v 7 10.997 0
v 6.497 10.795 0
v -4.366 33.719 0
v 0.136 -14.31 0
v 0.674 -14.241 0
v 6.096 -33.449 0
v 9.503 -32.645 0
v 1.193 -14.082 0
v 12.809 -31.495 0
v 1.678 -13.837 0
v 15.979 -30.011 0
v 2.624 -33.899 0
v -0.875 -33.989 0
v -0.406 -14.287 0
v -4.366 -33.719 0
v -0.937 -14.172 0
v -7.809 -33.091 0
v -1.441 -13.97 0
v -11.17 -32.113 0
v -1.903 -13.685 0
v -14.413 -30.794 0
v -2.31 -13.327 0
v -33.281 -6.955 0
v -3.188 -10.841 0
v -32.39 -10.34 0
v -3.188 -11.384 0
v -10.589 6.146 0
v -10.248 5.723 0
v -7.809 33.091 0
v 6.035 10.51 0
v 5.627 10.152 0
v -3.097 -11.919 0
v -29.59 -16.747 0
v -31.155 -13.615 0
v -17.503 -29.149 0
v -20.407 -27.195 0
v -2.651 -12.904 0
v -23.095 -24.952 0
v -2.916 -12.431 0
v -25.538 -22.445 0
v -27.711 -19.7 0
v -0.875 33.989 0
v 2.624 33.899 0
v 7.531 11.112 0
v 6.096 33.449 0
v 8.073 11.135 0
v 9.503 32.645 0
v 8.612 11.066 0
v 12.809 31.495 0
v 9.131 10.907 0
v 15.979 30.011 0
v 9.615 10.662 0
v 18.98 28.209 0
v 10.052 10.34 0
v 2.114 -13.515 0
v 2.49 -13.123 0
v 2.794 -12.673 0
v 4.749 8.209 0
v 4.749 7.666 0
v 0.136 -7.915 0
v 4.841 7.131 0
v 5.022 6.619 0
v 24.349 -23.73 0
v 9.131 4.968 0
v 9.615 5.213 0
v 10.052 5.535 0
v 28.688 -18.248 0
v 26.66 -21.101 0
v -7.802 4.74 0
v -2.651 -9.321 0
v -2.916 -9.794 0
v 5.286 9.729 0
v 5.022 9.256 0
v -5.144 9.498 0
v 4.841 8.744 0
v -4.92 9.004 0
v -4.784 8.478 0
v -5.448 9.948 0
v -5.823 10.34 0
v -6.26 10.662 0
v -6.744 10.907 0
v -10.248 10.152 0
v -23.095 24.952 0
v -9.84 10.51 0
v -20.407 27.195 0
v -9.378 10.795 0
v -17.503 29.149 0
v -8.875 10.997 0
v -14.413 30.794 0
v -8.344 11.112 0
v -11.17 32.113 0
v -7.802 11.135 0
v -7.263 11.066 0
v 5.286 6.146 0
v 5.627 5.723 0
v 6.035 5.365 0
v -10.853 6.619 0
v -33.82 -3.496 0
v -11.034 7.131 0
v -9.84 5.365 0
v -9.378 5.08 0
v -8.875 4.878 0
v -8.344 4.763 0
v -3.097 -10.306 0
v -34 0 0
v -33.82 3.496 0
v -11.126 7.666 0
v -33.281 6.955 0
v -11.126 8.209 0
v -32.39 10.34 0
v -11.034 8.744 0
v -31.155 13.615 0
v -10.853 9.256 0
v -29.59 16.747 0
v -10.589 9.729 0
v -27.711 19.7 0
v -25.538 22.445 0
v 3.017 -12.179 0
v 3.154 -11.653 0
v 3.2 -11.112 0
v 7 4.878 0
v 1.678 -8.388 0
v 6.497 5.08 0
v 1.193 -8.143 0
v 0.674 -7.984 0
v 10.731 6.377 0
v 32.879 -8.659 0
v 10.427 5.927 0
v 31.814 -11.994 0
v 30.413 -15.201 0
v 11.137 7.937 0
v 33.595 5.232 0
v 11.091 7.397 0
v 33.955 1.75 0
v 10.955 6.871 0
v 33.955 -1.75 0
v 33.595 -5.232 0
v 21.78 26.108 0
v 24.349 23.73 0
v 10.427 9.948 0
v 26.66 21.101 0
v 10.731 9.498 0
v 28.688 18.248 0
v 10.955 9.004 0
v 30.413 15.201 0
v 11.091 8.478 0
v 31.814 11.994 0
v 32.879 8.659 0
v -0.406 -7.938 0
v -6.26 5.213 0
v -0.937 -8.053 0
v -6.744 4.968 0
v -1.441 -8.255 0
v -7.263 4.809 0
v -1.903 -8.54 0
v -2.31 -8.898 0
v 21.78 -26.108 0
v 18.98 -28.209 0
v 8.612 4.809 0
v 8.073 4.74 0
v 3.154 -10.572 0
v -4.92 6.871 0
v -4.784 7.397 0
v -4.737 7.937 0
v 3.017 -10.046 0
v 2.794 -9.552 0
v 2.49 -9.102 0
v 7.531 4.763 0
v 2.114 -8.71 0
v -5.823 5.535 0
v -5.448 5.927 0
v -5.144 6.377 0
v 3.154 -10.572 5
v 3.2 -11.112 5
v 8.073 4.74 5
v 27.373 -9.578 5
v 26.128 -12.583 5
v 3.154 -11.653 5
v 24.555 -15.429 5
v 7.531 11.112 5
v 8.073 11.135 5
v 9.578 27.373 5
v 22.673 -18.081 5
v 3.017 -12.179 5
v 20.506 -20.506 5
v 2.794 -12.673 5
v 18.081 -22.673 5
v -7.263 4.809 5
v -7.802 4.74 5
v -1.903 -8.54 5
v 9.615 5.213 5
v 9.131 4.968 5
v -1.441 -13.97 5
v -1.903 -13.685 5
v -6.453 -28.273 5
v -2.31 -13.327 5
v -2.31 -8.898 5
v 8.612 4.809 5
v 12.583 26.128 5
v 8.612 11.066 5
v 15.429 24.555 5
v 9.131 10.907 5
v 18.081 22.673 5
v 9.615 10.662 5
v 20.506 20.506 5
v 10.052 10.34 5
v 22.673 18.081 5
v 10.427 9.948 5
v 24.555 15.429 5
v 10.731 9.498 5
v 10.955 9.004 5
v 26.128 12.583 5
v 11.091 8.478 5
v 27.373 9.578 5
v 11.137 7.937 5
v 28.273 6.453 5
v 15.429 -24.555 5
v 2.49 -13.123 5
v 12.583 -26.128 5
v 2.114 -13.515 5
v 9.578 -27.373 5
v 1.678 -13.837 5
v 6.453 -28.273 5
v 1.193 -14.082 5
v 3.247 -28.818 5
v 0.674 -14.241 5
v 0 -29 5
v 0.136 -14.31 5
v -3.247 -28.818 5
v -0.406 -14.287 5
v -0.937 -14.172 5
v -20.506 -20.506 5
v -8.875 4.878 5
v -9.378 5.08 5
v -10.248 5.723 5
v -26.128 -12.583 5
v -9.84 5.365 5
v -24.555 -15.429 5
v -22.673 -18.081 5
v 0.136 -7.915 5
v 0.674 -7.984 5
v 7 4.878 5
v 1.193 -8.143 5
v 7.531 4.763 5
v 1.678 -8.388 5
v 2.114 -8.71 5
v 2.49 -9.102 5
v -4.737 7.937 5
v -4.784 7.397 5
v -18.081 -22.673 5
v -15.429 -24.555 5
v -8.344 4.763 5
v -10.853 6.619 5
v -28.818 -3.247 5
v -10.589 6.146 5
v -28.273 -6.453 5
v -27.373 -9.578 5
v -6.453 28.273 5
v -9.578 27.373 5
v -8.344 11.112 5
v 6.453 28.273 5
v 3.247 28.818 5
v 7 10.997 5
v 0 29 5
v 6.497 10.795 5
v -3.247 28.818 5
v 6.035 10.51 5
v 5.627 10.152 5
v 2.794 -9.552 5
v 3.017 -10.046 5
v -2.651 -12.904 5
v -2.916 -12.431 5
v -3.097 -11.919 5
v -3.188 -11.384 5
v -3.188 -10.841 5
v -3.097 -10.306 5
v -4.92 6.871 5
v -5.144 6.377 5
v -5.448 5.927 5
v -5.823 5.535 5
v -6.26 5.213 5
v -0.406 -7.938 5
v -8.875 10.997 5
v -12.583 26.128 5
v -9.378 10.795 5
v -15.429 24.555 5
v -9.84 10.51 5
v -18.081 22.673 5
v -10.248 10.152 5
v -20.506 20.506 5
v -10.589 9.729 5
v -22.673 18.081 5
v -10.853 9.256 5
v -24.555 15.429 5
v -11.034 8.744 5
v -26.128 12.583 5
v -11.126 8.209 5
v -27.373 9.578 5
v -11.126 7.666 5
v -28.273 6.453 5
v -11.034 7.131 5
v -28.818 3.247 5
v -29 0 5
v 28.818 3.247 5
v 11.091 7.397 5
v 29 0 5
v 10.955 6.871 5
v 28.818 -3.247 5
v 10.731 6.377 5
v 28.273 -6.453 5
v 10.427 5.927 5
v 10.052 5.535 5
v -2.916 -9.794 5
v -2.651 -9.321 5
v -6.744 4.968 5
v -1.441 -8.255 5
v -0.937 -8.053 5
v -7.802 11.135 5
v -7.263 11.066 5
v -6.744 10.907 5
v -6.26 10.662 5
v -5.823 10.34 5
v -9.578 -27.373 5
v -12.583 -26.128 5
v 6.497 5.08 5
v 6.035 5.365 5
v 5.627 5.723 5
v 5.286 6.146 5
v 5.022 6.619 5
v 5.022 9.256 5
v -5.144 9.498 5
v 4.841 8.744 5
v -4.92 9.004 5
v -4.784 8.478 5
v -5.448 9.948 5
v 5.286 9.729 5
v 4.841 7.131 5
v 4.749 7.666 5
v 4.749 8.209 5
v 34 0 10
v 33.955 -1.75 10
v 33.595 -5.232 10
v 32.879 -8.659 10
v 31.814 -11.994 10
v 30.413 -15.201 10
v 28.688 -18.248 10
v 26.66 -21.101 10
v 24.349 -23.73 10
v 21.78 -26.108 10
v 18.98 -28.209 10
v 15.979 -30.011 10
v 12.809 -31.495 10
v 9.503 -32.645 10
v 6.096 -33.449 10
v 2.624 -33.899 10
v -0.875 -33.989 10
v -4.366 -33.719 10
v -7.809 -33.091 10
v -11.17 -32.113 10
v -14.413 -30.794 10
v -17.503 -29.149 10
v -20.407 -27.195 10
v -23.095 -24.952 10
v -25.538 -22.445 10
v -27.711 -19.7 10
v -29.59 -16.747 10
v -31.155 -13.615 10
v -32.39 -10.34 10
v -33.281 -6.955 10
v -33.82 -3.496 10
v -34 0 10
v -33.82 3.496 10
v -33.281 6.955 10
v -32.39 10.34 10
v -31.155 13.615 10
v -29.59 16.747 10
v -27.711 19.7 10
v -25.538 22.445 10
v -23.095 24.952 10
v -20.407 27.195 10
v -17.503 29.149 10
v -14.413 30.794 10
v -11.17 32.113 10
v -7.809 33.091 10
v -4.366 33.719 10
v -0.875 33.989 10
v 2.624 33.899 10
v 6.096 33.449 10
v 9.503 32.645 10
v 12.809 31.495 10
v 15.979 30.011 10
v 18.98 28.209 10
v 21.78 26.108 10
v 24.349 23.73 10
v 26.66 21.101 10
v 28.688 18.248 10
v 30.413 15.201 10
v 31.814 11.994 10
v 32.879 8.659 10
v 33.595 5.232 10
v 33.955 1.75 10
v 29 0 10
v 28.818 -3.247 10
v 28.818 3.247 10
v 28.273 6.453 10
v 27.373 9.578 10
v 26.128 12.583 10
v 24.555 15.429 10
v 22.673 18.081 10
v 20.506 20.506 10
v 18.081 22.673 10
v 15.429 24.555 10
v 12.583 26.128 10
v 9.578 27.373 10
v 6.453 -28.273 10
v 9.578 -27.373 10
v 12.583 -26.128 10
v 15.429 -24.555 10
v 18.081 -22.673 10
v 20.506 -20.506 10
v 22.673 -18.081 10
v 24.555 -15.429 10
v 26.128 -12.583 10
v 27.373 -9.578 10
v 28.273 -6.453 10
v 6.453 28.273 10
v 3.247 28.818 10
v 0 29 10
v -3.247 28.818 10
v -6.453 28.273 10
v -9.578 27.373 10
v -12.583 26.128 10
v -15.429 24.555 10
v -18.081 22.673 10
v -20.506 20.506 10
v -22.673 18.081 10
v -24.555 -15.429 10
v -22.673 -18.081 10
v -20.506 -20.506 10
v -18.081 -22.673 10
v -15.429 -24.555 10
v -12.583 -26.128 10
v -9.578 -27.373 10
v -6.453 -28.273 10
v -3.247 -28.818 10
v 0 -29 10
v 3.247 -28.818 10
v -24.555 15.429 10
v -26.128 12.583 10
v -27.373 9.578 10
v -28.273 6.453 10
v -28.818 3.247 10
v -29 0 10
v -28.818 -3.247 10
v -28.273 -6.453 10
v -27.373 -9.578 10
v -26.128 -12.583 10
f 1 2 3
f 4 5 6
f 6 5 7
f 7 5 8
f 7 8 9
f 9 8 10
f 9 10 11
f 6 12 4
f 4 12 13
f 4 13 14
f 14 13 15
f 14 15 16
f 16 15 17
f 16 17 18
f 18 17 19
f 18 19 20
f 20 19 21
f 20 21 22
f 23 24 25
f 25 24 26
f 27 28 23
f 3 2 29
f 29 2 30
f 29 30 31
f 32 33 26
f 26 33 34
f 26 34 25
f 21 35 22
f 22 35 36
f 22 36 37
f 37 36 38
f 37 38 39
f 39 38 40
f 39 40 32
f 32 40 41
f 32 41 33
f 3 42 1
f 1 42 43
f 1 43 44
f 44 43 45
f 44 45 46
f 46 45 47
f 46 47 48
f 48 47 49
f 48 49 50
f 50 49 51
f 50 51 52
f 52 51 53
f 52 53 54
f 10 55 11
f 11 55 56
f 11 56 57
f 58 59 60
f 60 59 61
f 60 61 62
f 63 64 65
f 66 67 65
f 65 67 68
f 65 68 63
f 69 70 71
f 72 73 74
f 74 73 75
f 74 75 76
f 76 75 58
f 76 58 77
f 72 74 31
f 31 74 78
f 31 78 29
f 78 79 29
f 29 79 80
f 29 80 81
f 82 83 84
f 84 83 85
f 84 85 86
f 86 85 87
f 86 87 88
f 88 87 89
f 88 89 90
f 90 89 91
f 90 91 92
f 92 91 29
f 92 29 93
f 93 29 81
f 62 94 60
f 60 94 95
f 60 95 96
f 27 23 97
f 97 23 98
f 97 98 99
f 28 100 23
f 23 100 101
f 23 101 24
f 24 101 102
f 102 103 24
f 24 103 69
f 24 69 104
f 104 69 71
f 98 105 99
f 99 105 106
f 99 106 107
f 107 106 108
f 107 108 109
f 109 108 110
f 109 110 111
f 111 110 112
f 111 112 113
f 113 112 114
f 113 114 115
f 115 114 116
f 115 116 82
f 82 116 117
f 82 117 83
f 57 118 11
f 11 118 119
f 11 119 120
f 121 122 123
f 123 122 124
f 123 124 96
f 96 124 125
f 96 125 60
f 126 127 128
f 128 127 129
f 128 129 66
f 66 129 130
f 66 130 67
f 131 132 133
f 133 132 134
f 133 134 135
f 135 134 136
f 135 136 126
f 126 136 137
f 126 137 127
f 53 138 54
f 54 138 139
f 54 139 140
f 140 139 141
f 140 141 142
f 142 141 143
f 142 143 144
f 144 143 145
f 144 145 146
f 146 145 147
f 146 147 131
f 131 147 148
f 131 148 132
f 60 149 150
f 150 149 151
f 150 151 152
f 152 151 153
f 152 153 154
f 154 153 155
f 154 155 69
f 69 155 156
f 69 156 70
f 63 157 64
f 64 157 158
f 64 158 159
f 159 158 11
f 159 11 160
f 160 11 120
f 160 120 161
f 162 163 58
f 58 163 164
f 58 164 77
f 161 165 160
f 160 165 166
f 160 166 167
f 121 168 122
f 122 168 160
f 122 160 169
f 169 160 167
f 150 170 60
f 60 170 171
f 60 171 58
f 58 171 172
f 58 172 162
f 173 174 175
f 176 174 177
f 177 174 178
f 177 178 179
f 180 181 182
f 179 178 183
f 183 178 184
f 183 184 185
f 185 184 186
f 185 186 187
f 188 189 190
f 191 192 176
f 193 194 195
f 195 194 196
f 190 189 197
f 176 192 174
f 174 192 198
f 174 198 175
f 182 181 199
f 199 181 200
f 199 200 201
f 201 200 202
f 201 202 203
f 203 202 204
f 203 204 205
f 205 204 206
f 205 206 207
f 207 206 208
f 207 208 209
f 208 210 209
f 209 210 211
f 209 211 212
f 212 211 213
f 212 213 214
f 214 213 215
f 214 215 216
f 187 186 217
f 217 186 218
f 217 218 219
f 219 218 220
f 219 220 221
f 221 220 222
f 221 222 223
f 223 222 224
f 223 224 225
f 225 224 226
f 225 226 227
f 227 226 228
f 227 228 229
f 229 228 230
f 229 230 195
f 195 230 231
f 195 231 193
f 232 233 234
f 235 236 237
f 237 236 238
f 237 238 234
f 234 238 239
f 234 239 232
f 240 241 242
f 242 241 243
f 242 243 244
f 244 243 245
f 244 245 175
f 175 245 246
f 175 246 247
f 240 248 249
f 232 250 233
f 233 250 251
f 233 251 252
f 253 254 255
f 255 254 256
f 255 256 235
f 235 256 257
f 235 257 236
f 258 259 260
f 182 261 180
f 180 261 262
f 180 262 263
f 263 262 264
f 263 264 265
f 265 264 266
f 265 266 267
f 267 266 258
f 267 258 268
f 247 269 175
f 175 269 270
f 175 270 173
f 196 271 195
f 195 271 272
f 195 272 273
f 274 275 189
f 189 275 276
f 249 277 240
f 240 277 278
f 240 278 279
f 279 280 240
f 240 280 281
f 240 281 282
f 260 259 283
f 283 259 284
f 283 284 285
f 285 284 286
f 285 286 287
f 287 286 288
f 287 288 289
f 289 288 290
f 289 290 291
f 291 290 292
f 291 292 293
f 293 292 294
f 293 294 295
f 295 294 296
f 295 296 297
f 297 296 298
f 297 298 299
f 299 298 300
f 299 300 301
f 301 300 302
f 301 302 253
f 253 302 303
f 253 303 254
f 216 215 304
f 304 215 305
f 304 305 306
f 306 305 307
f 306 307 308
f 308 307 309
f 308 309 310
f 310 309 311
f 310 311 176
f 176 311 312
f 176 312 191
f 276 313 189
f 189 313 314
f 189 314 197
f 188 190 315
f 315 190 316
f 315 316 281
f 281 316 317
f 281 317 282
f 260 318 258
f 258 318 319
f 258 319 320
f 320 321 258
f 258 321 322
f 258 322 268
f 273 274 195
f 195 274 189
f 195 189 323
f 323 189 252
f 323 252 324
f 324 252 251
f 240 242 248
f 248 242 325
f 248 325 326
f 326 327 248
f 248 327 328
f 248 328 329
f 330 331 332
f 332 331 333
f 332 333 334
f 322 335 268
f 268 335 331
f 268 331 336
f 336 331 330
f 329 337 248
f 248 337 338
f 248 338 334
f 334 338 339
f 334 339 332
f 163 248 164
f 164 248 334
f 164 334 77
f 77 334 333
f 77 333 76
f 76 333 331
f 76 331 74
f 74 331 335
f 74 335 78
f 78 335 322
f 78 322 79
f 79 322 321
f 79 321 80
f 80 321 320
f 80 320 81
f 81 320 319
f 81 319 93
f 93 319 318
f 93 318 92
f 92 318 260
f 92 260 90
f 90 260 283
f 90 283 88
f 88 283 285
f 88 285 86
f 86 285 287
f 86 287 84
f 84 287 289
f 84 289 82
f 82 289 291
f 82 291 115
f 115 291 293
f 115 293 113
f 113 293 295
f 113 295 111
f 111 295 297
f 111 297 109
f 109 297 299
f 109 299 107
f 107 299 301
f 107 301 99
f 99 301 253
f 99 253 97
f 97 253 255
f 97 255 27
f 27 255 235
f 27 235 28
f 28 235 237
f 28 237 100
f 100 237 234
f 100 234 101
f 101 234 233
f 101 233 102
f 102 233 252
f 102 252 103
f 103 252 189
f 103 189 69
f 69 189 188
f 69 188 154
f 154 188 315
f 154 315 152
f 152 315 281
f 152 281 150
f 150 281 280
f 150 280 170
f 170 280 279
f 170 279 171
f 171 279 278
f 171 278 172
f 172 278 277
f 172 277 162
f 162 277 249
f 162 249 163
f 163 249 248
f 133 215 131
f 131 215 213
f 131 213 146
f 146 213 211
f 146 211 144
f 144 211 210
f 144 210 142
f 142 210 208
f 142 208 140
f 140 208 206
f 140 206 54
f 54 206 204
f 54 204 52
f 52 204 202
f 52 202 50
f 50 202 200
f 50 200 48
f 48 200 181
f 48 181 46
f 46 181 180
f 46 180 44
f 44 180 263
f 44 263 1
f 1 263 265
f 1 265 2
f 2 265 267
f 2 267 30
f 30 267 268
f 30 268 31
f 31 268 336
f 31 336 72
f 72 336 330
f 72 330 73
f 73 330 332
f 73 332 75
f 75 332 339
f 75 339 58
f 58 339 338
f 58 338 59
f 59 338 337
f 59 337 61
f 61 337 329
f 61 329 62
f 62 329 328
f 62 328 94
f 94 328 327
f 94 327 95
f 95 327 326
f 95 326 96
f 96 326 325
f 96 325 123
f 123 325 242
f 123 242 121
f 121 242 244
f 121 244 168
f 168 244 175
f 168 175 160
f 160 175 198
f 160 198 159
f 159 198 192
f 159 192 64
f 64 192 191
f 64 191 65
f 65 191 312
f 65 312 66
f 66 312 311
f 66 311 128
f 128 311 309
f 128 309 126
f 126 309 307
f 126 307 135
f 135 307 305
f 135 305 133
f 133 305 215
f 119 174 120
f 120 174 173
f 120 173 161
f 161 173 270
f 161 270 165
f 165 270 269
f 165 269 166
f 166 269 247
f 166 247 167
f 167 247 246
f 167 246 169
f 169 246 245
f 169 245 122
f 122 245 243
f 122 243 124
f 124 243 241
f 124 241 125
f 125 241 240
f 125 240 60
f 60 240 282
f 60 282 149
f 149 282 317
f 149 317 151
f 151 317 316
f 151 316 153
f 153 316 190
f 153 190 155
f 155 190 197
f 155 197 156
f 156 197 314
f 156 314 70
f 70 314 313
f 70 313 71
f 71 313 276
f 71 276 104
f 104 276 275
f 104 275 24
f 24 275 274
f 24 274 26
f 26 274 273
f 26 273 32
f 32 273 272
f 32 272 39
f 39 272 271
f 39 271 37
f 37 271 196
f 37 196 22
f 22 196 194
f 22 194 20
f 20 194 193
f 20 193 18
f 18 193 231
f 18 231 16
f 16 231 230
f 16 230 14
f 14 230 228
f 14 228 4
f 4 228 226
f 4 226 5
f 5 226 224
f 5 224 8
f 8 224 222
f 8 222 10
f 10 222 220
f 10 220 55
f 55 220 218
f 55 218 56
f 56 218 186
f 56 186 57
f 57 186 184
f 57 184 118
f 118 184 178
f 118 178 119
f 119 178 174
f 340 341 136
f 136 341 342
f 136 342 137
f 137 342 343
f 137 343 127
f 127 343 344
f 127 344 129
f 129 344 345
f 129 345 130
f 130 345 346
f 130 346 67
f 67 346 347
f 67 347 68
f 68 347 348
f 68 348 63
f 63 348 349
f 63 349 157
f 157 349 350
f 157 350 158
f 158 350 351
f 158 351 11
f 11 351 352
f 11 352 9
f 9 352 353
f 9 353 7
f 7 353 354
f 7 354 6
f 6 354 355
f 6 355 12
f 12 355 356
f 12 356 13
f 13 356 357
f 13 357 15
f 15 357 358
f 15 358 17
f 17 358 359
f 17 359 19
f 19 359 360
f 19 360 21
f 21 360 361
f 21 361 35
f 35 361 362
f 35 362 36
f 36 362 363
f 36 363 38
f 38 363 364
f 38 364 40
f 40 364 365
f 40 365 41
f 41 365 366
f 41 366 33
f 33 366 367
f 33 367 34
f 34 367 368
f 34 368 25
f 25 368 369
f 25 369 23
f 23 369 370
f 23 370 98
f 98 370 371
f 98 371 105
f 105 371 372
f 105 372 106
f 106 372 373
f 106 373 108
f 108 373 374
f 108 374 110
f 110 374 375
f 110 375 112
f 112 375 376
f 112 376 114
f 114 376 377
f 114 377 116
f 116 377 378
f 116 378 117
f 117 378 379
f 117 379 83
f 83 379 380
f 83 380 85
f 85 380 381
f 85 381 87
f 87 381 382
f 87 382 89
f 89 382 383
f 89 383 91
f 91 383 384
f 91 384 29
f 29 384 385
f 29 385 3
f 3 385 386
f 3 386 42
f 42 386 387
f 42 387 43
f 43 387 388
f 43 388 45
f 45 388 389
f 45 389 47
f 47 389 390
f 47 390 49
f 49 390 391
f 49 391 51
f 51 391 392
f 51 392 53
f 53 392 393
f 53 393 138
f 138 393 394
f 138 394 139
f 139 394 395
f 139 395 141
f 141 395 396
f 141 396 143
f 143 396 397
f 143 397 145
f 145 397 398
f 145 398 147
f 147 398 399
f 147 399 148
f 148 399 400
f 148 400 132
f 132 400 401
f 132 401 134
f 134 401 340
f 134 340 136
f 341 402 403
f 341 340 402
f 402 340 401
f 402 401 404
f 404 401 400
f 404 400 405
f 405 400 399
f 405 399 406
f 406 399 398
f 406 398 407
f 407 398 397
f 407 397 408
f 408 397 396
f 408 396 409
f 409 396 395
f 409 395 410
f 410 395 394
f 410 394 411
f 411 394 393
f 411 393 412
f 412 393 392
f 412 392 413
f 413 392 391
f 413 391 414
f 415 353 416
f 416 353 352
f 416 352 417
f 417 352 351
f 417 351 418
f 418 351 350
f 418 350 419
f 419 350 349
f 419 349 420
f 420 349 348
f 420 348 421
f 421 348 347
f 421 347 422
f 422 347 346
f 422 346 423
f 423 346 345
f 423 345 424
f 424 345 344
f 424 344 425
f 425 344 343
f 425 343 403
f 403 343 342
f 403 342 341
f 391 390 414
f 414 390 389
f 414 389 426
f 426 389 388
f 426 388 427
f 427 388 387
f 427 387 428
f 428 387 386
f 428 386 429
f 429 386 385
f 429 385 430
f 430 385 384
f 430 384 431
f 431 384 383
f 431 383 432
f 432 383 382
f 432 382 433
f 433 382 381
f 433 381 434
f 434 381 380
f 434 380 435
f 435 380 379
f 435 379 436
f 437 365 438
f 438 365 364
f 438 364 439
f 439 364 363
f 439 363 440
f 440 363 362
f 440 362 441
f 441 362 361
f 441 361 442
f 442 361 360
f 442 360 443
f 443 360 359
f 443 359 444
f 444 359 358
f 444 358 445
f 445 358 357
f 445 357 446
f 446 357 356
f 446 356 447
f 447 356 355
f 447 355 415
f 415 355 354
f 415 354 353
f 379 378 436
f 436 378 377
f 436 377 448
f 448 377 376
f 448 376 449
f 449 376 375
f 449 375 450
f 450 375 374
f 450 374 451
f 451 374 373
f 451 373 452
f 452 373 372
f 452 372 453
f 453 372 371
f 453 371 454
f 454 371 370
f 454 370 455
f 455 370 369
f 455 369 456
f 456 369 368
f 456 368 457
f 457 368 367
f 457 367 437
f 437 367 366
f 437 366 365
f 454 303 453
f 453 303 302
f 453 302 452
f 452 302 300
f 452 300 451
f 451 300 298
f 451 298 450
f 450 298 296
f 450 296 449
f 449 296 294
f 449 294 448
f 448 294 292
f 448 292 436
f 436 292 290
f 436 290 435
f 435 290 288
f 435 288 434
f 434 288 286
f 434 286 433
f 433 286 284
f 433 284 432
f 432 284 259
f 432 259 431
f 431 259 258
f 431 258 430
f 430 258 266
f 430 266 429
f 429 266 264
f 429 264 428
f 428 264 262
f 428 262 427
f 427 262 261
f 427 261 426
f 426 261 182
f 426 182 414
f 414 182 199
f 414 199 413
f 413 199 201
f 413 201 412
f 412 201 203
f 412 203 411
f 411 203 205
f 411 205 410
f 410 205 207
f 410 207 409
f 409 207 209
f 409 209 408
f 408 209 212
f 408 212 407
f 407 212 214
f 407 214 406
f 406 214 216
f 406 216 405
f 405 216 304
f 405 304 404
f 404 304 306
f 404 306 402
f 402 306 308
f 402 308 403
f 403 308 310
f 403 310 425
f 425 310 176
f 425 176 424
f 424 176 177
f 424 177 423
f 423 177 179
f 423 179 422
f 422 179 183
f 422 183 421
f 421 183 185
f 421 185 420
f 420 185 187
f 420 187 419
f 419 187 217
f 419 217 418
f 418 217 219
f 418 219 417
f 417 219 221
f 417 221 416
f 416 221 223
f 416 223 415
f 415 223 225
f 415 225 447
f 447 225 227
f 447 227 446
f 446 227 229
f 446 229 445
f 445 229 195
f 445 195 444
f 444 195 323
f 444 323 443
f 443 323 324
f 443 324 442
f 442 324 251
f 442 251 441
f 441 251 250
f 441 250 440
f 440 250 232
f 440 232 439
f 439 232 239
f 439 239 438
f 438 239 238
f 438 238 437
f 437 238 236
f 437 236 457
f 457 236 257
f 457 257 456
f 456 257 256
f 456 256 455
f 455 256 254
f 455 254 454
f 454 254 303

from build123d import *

# Parameters (mm, degrees)
SKETCH1_R      = 24
EXTRUDE1_DEPTH = 4
SKETCH2_R      = 24
EXTRUDE2_DEPTH = 1
SKETCH3_R      = 3.2
EXTRUDE3_DEPTH = 6
SKETCH4_R      = 34
SKETCH4_R_2    = 24
EXTRUDE4_DEPTH = 5
SKETCH5_R      = 34
SKETCH5_R_2    = 29
EXTRUDE5_DEPTH = 5


with BuildPart() as part:
    # Sketch1 → Extrude1 (new body)
    with BuildSketch(Plane.XY):
        Circle(SKETCH1_R)
    extrude(amount=EXTRUDE1_DEPTH)

    # Sketch2 → Extrude2 (add)
    with BuildSketch(Plane.XY.offset(4)):
        Circle(SKETCH2_R)
    extrude(amount=EXTRUDE2_DEPTH)

    # Sketch3 → Extrude3 (cut, through all)
    with BuildSketch(Plane.XY.offset(5)):
        with Locations((-7.9375, 7.9375)):
            Circle(SKETCH3_R)
        with Locations((7.9375, 7.9375)):
            Circle(SKETCH3_R)
        with Locations((0, -11.1125)):
            Circle(SKETCH3_R)
    extrude(amount=-EXTRUDE3_DEPTH, mode=Mode.SUBTRACT)

    # Sketch4 → Extrude4 (add)
    with BuildSketch(Plane(origin=(0, 0, 0), x_dir=(-1, 0, 0), z_dir=(0, 0, -1))):
        Circle(SKETCH4_R)
        Circle(SKETCH4_R_2, mode=Mode.SUBTRACT)
    extrude(amount=-EXTRUDE4_DEPTH)

    # Sketch5 → Extrude5 (add)
    with BuildSketch(Plane.XY.offset(5)):
        Circle(SKETCH5_R)
        Circle(SKETCH5_R_2, mode=Mode.SUBTRACT)
    extrude(amount=EXTRUDE5_DEPTH)


solid = part.part
